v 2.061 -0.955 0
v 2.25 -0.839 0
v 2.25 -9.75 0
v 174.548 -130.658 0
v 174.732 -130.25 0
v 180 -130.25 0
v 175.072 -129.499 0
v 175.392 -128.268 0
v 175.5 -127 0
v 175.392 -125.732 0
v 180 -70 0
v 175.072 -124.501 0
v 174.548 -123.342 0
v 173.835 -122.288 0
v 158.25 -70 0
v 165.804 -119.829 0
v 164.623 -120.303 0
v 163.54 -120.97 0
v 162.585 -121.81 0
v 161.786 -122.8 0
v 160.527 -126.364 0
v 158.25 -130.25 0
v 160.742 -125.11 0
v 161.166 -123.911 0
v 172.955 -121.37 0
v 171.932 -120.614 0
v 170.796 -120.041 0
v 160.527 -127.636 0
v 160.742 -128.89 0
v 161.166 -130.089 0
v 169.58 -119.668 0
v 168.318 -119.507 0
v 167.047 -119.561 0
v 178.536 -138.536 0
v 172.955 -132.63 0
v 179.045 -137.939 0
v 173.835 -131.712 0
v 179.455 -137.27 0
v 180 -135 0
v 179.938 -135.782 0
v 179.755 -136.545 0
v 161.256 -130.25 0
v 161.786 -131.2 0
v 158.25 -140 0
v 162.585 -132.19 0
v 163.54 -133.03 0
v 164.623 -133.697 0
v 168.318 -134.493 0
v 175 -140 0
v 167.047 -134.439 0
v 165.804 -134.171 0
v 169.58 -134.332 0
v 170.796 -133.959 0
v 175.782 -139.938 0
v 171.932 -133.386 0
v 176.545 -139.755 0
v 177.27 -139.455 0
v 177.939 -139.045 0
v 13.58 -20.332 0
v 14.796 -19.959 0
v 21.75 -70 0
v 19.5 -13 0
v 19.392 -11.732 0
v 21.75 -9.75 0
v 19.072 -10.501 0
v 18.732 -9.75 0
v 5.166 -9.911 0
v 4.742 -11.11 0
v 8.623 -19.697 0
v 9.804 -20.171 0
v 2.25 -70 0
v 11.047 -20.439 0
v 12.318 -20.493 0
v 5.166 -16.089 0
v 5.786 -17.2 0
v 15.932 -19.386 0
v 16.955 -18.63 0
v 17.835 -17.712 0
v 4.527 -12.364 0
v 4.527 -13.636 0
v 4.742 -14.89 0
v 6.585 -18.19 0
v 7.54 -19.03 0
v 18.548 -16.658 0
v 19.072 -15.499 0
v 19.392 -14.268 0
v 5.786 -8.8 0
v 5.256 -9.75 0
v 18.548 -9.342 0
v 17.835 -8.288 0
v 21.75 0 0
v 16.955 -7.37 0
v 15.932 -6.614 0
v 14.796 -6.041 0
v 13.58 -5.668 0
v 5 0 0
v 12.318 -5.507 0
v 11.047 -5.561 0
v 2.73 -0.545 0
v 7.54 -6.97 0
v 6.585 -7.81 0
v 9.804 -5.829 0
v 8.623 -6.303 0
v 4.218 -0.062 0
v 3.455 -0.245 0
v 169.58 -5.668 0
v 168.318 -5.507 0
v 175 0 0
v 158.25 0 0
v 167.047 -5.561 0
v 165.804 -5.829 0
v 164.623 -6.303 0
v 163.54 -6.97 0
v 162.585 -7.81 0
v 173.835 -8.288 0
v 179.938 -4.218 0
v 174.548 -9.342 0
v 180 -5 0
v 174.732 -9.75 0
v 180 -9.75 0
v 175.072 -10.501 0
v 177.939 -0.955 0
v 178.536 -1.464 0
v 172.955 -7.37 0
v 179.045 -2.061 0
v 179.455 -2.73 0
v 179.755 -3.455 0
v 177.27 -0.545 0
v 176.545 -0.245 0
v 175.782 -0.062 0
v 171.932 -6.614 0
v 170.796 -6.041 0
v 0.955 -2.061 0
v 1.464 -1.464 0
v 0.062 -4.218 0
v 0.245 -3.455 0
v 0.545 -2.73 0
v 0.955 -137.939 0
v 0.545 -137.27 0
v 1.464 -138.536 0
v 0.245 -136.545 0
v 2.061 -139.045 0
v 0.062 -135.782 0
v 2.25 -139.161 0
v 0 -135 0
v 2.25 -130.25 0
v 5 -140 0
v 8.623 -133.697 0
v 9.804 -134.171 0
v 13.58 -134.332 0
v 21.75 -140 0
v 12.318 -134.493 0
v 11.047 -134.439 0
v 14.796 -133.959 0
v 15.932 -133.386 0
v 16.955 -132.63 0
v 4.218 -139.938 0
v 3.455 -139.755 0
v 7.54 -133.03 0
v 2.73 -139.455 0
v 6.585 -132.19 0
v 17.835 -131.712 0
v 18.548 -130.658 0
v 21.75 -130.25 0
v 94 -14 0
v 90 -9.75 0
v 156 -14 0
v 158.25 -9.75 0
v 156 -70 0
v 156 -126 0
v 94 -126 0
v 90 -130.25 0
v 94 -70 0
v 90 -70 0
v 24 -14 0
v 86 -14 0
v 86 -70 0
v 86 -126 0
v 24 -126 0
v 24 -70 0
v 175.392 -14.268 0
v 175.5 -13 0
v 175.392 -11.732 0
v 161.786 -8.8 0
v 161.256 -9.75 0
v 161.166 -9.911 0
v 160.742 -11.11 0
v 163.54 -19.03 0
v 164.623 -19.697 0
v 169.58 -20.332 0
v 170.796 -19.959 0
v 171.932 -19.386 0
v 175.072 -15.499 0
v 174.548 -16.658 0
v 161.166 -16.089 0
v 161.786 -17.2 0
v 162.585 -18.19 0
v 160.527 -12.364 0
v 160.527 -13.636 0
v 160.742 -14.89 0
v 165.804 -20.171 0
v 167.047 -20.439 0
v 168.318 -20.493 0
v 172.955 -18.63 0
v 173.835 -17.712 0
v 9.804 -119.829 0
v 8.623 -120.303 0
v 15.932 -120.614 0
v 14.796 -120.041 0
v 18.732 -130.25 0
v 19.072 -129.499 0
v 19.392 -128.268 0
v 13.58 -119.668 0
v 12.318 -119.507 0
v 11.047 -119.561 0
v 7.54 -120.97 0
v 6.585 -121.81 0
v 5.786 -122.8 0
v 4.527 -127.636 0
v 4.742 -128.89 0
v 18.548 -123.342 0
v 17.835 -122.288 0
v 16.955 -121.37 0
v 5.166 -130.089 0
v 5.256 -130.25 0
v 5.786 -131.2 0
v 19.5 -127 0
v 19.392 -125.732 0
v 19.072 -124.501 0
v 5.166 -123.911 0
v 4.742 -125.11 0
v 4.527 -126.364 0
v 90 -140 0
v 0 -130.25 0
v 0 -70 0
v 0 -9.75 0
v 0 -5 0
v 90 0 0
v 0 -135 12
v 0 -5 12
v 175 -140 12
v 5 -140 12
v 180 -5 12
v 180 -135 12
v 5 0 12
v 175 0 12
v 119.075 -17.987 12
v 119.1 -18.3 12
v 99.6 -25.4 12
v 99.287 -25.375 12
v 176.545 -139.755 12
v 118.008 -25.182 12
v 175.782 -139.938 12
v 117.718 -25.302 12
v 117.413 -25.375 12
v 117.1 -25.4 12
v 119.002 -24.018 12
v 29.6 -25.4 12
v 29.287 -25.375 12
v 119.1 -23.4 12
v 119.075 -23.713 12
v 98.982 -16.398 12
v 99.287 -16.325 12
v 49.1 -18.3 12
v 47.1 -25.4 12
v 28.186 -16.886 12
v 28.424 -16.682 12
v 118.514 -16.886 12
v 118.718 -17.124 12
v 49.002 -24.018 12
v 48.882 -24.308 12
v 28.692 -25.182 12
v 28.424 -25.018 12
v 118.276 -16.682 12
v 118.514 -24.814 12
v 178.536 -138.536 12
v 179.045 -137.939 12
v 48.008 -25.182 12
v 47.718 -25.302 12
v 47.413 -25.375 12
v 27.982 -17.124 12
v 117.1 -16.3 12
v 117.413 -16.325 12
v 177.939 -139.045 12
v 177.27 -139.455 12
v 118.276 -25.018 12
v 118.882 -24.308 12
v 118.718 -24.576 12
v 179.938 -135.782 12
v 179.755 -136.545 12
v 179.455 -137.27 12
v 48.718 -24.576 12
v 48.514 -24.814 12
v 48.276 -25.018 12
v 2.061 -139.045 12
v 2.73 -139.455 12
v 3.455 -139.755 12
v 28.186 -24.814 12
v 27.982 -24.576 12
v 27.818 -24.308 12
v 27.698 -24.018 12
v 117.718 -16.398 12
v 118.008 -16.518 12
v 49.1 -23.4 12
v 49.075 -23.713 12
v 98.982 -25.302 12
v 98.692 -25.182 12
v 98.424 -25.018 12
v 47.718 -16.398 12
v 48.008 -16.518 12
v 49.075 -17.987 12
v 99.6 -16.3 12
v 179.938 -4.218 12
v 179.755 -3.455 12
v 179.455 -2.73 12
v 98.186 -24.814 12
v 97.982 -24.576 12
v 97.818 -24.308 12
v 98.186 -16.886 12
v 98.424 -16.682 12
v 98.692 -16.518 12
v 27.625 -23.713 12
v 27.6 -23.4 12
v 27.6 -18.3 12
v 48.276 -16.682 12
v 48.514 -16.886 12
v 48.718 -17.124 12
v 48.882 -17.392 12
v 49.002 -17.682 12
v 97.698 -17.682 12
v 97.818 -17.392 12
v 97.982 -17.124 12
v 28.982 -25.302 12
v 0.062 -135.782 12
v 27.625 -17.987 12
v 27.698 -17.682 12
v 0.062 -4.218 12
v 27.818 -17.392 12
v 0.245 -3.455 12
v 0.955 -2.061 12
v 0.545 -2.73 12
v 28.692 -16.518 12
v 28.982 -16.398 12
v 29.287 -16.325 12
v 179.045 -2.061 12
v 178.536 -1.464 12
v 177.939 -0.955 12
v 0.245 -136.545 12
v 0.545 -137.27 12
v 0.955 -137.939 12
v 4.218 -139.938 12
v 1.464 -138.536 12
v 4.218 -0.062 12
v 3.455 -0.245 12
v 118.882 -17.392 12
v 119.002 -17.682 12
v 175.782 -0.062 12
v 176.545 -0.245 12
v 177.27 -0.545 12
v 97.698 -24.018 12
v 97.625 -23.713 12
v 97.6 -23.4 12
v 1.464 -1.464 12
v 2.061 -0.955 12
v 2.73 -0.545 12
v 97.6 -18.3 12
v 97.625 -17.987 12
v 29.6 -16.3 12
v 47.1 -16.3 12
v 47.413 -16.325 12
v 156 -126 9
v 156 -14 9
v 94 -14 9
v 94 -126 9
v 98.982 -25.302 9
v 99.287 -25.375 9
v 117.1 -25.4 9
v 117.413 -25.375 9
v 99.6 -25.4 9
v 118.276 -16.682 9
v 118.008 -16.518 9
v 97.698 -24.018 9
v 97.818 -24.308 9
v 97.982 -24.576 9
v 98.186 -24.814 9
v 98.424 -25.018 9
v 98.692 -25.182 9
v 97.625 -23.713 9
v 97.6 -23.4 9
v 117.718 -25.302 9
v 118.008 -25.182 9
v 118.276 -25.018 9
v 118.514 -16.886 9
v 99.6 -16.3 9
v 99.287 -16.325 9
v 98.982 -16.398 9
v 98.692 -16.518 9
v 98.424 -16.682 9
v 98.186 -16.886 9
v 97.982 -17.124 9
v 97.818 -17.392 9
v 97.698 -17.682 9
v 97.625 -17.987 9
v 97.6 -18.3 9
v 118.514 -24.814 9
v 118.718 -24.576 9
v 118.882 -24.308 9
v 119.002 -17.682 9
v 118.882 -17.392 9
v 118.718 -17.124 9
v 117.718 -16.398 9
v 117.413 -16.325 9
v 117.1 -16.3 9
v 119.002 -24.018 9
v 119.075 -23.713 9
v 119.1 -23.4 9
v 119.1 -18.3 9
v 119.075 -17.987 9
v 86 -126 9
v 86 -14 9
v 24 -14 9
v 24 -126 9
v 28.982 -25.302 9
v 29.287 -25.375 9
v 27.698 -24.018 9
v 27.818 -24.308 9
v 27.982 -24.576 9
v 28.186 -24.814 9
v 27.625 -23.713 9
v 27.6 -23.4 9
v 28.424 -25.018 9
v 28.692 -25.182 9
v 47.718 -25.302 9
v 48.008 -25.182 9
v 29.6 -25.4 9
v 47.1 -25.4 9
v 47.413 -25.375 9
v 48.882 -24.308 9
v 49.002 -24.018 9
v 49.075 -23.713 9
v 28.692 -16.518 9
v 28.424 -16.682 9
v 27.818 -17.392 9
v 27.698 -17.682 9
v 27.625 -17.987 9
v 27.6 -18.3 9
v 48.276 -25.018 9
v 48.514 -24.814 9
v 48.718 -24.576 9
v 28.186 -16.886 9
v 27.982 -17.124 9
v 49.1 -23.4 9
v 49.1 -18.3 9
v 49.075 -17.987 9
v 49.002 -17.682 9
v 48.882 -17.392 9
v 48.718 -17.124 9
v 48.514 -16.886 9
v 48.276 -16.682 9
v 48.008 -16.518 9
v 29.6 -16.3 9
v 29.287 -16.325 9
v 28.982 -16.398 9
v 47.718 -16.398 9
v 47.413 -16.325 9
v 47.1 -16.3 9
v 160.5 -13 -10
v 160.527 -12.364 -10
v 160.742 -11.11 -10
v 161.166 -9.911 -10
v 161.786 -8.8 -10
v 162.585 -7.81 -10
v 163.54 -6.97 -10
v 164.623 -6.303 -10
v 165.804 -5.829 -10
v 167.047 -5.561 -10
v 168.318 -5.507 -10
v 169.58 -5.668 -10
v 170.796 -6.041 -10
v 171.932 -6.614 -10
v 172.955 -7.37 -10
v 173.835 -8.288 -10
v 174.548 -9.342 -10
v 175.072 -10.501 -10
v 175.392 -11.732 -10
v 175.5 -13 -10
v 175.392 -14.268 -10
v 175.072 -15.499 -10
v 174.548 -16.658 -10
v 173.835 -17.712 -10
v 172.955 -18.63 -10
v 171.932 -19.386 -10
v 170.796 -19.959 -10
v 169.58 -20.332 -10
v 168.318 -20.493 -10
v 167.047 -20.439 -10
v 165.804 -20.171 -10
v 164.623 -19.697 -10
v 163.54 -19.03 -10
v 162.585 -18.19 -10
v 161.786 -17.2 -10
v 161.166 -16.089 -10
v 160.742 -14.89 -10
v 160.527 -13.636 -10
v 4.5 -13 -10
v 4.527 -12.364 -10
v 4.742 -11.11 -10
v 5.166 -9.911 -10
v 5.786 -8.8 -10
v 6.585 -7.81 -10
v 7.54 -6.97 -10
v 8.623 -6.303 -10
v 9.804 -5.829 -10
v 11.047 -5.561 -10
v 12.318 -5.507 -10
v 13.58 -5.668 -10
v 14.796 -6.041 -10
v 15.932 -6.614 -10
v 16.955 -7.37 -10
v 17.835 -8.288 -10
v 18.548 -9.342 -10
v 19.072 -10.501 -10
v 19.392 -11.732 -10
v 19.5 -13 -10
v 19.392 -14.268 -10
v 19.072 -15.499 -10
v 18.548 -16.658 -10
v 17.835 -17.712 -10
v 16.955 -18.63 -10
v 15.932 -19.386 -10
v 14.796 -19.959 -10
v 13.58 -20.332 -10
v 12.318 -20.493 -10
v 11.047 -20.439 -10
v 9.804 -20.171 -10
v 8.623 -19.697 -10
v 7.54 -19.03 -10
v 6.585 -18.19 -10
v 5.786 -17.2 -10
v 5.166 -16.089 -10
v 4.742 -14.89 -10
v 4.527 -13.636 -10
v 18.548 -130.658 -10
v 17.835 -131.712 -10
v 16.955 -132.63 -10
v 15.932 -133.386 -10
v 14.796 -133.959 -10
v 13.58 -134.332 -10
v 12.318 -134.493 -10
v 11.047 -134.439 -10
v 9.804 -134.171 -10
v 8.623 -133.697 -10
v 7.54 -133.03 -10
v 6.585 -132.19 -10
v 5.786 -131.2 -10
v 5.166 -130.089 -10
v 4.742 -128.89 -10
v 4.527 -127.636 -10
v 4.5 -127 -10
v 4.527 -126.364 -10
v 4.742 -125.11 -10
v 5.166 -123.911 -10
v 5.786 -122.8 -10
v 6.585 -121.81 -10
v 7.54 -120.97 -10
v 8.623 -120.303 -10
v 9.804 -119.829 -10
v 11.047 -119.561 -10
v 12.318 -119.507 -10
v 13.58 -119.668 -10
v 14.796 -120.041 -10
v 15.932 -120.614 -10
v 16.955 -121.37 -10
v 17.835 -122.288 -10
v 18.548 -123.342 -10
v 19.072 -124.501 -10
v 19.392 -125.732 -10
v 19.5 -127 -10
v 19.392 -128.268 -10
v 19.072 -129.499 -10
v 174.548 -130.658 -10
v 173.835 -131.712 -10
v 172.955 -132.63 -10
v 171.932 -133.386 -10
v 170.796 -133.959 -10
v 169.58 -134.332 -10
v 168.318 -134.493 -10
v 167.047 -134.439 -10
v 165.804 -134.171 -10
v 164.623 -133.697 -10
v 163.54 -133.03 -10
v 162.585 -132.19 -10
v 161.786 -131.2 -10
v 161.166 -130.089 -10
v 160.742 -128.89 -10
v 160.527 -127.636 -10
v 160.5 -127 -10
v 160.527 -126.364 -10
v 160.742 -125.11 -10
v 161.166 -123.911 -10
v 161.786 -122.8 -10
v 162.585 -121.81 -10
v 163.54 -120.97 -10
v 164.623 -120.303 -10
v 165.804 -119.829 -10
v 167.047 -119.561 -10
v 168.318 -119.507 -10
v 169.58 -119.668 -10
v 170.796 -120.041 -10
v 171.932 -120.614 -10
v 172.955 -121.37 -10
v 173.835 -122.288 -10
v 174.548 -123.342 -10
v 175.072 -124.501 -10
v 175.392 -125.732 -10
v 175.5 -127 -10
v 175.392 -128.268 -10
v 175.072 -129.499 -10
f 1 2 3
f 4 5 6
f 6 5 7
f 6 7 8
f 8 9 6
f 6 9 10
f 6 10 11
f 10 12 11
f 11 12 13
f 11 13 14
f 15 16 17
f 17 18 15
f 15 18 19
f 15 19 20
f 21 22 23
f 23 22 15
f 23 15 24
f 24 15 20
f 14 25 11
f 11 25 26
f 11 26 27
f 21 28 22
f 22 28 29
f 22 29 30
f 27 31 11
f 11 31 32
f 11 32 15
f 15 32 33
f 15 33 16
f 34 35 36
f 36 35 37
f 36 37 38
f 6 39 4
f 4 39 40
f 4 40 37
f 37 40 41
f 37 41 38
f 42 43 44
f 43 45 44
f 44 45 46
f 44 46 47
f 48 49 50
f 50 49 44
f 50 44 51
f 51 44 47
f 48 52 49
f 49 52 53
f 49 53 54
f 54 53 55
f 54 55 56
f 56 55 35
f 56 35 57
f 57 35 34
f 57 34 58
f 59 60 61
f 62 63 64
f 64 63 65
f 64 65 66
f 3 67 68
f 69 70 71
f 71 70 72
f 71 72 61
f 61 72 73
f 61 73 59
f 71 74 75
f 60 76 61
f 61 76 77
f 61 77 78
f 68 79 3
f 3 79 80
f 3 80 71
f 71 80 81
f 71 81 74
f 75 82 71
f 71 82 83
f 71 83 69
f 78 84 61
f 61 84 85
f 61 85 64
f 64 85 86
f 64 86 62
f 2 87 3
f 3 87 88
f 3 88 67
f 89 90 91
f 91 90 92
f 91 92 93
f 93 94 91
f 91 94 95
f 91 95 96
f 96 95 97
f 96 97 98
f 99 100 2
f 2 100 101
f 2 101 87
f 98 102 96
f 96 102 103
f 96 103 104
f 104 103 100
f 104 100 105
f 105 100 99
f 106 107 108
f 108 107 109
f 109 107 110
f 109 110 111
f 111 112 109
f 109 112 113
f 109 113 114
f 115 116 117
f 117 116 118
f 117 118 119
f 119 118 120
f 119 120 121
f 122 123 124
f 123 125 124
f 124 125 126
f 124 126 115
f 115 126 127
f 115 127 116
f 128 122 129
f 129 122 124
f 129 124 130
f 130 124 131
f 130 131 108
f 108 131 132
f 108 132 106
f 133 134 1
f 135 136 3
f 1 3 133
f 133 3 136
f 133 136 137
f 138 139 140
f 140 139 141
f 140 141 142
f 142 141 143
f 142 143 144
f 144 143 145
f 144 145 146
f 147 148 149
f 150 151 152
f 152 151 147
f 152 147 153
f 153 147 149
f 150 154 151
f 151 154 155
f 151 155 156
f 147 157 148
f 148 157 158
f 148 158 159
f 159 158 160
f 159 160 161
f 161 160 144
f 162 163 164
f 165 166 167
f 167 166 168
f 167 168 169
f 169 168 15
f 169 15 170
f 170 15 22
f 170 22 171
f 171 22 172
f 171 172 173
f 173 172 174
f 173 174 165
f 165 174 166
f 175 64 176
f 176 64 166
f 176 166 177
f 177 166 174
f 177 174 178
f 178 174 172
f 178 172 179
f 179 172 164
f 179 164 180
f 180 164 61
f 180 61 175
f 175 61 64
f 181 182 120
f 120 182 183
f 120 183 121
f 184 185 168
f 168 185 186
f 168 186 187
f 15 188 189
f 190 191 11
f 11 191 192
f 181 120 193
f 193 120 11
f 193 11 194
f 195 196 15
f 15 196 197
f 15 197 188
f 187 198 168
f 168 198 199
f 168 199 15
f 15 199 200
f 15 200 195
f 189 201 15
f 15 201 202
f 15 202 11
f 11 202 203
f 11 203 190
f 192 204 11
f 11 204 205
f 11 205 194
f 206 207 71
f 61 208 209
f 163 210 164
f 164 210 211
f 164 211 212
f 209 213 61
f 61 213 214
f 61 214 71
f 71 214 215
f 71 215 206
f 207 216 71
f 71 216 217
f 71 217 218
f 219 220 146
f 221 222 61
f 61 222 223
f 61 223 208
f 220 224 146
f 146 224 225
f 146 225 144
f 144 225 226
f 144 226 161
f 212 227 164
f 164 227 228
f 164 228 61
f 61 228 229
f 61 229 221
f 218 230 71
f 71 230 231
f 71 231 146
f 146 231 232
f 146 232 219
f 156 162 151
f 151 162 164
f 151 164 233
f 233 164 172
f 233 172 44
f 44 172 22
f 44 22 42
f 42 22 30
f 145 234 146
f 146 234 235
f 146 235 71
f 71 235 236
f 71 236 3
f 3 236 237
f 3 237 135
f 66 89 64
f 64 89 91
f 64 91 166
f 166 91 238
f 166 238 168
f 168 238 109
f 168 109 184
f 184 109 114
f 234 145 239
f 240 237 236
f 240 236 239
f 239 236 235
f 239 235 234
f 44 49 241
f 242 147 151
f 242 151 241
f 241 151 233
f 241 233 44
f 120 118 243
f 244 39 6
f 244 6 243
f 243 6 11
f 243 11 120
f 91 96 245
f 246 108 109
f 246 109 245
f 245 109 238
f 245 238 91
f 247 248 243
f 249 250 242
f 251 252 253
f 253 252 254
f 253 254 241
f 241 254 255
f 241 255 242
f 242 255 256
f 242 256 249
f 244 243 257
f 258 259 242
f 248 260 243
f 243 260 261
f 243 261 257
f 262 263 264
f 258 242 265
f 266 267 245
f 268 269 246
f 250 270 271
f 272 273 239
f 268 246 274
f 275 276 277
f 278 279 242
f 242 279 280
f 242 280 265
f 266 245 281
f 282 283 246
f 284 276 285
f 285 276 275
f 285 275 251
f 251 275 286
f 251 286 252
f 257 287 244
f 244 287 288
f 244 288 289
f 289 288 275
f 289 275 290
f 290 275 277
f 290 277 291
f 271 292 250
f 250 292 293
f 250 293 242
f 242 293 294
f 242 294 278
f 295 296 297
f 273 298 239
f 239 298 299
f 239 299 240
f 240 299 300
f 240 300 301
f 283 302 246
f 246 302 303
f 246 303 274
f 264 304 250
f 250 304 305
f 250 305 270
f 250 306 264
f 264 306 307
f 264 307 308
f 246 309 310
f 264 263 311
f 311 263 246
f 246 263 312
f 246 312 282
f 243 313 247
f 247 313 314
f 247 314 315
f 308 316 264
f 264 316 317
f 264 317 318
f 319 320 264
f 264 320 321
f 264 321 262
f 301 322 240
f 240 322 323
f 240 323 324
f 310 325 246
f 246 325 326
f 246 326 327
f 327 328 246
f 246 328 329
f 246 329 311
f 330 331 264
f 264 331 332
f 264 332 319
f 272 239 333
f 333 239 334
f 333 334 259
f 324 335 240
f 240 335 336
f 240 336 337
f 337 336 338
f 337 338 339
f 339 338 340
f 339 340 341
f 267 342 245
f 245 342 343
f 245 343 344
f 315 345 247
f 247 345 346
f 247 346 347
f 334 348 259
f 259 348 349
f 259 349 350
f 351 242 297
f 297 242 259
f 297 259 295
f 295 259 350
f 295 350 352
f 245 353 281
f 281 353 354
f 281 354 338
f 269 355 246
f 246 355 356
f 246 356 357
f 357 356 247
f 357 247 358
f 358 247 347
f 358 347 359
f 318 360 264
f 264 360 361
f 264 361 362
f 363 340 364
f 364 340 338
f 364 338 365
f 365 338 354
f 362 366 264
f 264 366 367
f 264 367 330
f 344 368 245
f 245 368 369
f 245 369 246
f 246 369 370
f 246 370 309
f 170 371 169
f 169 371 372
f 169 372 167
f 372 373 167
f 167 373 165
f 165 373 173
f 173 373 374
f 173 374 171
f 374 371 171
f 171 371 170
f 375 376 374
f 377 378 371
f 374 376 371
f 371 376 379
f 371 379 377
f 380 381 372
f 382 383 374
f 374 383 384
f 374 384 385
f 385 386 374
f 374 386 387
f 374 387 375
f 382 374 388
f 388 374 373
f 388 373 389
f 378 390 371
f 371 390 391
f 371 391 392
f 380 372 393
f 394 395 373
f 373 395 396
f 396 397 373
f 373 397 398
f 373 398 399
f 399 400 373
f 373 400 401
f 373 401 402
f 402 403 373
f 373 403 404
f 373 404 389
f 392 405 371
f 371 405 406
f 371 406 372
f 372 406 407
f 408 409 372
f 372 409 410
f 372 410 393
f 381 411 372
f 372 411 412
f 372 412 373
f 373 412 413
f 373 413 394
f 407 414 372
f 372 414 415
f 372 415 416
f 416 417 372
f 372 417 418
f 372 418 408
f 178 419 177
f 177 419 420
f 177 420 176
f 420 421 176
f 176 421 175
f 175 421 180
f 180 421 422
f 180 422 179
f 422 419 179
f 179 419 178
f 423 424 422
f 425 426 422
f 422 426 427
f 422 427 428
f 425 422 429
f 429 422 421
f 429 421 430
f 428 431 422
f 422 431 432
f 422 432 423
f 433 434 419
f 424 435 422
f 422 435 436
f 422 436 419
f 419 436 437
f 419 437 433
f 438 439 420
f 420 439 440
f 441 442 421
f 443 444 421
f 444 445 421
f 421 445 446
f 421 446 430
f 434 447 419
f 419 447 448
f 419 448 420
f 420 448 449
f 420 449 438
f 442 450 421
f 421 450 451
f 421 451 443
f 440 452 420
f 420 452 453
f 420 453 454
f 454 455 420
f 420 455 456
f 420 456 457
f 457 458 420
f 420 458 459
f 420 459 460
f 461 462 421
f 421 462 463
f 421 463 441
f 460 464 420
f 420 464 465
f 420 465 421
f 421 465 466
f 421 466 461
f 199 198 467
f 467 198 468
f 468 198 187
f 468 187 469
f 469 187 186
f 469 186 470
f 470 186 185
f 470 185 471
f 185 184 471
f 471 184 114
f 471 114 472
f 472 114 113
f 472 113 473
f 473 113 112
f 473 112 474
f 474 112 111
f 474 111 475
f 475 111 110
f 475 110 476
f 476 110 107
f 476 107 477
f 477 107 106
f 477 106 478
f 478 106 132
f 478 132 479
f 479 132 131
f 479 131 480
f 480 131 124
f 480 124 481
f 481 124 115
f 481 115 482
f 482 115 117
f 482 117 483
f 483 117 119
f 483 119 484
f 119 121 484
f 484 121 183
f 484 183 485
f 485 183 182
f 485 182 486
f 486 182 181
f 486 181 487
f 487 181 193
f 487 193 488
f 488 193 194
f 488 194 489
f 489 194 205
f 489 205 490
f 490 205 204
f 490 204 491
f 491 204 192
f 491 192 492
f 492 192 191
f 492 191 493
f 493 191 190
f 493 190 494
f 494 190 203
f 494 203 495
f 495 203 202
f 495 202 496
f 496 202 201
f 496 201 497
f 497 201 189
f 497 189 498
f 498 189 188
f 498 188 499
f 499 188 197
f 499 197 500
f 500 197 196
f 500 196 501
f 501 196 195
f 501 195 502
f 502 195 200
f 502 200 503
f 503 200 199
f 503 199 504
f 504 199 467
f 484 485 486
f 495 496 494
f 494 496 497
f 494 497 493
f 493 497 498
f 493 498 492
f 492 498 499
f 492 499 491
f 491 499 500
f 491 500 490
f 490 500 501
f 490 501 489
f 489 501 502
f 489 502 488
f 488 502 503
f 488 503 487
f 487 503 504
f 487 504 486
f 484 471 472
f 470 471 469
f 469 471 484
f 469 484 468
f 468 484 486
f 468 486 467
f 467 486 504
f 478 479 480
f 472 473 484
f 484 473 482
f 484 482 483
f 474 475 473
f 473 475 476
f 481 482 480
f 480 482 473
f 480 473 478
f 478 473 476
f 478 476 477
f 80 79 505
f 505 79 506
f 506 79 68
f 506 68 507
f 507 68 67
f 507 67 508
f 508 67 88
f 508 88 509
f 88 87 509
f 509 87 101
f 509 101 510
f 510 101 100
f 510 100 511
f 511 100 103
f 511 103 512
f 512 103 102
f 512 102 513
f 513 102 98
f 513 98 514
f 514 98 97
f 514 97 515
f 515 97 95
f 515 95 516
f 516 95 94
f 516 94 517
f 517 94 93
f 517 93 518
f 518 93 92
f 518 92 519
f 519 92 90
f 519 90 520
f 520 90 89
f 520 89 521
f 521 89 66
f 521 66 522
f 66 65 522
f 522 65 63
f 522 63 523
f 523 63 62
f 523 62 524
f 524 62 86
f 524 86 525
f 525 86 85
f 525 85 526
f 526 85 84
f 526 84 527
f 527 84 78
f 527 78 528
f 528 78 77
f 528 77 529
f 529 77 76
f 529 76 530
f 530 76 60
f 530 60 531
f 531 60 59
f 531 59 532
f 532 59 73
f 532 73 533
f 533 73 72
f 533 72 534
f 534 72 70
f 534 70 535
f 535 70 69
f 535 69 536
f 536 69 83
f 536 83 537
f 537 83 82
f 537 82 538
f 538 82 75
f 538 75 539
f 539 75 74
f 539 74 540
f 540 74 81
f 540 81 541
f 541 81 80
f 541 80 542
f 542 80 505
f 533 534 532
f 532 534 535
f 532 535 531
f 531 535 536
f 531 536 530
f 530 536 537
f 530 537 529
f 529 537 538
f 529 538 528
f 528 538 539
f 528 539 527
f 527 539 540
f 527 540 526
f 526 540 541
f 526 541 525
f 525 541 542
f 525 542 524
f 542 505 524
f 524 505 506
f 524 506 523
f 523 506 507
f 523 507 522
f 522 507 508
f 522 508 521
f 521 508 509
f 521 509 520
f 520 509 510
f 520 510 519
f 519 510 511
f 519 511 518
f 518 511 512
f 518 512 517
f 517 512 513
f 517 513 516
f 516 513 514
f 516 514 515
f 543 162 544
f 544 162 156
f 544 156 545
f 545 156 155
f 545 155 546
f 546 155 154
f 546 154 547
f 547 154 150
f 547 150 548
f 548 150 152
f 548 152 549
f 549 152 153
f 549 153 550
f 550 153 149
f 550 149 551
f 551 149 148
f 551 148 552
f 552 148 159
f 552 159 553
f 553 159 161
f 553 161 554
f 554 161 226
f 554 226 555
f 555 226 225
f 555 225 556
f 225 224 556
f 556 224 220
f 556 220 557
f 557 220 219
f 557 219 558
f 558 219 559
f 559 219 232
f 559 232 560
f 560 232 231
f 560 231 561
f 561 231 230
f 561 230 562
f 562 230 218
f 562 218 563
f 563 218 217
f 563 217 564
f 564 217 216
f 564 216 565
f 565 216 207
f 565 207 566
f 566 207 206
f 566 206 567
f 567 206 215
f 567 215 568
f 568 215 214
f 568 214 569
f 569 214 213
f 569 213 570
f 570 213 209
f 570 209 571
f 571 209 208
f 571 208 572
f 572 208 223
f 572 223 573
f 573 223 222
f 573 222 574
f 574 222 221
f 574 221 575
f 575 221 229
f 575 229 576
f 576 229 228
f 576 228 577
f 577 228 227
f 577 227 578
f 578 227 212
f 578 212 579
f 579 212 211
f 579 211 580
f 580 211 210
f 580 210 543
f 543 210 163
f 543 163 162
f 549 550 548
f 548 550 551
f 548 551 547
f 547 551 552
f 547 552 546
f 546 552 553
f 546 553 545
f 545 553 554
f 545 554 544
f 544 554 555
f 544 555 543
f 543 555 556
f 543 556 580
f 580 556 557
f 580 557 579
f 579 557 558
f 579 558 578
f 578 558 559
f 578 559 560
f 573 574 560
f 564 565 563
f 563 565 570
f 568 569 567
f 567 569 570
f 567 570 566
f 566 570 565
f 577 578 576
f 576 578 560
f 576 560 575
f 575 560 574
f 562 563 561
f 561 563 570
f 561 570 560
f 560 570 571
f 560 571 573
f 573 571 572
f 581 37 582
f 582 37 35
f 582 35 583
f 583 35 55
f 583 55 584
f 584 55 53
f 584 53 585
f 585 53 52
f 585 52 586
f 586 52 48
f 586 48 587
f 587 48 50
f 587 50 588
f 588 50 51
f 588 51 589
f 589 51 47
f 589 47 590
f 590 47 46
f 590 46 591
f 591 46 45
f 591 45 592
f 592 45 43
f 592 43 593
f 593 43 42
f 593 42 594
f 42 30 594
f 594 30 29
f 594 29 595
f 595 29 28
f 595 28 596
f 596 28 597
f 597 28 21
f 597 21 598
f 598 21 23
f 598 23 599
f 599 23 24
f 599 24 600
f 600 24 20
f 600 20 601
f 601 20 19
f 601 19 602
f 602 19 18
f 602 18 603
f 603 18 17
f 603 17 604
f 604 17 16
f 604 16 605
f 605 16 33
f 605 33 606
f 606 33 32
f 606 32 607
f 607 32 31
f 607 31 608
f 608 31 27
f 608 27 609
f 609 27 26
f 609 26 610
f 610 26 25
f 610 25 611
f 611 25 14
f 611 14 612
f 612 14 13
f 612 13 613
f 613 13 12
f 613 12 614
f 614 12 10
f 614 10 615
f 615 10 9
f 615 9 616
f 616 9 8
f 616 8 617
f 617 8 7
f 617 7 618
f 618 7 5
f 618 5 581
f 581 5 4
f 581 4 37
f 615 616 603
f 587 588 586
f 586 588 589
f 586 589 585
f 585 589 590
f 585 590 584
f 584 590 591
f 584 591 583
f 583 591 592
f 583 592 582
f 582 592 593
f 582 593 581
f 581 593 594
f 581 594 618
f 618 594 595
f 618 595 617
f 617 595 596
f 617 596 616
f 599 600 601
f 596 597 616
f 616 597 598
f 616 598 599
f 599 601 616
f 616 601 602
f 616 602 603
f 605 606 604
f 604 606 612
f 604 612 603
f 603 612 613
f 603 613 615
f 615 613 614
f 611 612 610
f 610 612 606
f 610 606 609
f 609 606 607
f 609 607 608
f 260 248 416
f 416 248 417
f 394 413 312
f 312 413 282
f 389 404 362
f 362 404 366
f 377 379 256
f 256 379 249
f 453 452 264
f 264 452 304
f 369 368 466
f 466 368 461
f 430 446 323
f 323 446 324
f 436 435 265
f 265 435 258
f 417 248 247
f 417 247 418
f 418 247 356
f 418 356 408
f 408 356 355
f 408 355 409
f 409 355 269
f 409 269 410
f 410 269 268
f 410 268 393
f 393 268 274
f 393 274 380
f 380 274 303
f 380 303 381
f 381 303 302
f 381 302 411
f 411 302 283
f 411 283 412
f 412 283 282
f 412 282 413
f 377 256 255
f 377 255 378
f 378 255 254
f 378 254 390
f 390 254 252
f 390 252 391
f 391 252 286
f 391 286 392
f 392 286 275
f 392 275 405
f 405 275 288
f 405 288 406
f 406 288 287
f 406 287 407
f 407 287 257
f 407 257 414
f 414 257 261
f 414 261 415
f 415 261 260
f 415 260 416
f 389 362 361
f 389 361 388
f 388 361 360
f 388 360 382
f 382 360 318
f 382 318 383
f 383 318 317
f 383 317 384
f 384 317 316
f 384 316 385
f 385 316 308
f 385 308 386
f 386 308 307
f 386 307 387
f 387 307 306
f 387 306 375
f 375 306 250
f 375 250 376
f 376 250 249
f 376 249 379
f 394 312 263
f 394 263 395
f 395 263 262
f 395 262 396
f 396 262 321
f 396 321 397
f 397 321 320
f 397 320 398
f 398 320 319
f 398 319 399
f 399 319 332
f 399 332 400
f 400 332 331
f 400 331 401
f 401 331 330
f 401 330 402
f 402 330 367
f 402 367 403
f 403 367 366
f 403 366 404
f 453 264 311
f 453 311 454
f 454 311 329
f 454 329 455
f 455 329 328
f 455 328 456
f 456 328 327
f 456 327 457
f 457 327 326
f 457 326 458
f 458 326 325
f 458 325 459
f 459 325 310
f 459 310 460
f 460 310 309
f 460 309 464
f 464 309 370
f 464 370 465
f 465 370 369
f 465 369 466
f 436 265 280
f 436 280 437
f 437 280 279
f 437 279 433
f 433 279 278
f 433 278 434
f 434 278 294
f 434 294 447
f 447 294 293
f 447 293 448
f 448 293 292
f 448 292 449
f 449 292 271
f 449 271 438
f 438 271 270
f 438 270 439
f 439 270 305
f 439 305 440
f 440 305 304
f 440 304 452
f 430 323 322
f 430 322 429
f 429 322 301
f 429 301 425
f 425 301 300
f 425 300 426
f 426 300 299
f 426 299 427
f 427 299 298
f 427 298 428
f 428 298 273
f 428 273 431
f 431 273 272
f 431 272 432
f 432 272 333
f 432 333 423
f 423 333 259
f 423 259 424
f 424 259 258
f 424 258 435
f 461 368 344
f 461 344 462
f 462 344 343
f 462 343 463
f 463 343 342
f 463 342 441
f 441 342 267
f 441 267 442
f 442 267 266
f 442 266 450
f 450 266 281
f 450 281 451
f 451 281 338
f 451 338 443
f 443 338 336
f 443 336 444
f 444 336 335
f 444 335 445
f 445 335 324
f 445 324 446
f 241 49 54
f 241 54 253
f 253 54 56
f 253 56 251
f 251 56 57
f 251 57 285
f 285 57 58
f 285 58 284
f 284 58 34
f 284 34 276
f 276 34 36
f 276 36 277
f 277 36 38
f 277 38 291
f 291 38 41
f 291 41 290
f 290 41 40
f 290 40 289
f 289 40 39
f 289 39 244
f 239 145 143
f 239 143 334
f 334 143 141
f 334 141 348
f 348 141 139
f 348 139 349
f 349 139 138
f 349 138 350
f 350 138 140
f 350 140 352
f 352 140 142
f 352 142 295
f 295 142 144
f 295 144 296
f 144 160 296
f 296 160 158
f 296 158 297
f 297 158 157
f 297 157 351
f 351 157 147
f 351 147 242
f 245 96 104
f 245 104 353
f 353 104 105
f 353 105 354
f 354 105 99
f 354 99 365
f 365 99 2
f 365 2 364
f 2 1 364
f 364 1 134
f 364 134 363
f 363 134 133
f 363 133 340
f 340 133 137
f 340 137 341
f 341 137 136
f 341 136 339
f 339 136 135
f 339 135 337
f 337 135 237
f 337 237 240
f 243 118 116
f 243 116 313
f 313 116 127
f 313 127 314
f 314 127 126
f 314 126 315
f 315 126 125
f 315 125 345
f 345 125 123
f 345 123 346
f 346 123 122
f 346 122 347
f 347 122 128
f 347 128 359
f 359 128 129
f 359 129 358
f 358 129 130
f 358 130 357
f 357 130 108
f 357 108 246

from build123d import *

# Parameters (mm, degrees)
SKETCH1_W           = 180
SKETCH1_H           = 140
BOSS_EXTRUDE1_DEPTH = 12
SKETCH2_W           = 62
SKETCH2_H           = 112
CUT_EXTRUDE1_DEPTH  = 9
SKETCH3_R           = 7.5
BOSS_EXTRUDE2_DEPTH = 10
SKETCH4_W           = 21.5
SKETCH4_H           = 9.1
CUT_EXTRUDE2_DEPTH  = 229.825260843
FILLET4_R           = 2
FILLET5_R           = 2
FILLET6_R           = 2
FILLET7_R           = 5


with BuildPart() as part:
    # Sketch1 → Boss-Extrude1 (new body)
    with BuildSketch(Plane.XY):
        with Locations((90, -70)):
            Rectangle(SKETCH1_W, SKETCH1_H)
    extrude(amount=BOSS_EXTRUDE1_DEPTH)

    # Sketch2 → Cut-Extrude1 (cut)
    with BuildSketch(Plane(origin=(0, 0, 0), x_dir=(-1, 0, 0), z_dir=(0, 0, -1))):
        with Locations((-125, -70)):
            Rectangle(SKETCH2_W, SKETCH2_H)
        with Locations((-55, -70)):
            Rectangle(SKETCH2_W, SKETCH2_H)
    extrude(amount=-CUT_EXTRUDE1_DEPTH, mode=Mode.SUBTRACT)

    # Sketch3 → Boss-Extrude2 (add)
    with BuildSketch(Plane(origin=(0, 0, 0), x_dir=(-1, 0, 0), z_dir=(0, 0, -1))):
        with Locations(Location((-168, -13, 0), (0, 0, 180))):
            Circle(SKETCH3_R)
        with Locations(Location((-12, -13, 0), (0, 0, 180))):
            Circle(SKETCH3_R)
        with Locations(Location((-12, -127, 0), (0, 0, 180))):
            Circle(SKETCH3_R)
        with Locations(Location((-168, -127, 0), (0, 0, 180))):
            Circle(SKETCH3_R)
    extrude(amount=BOSS_EXTRUDE2_DEPTH)

    # Sketch4 → Cut-Extrude2 (cut, through all)
    with BuildSketch(Plane(origin=(0, 0, 9), x_dir=(-1, 0, 0), z_dir=(0, 0, -1))):
        with Locations((-108.35, -20.85)):
            Rectangle(SKETCH4_W, SKETCH4_H)
        with Locations((-38.35, -20.85)):
            Rectangle(SKETCH4_W, SKETCH4_H)
    extrude(amount=-CUT_EXTRUDE2_DEPTH, mode=Mode.SUBTRACT)

    # Fillet4
    fillet4_edges = [part.edges().sort_by_distance(p)[0] for p in [
        (119.1, -16.3, 10.5),
    ]]
    fillet(fillet4_edges, radius=FILLET4_R)

    # Fillet5
    fillet5_edges = [part.edges().sort_by_distance(p)[0] for p in [
        (119.1, -25.4, 10.5),
        (97.6, -16.3, 10.5),
        (97.6, -25.4, 10.5),
    ]]
    fillet(fillet5_edges, radius=FILLET5_R)

    # Fillet6
    fillet6_edges = [part.edges().sort_by_distance(p)[0] for p in [
        (49.1, -25.4, 10.5),
        (49.1, -16.3, 10.5),
        (27.6, -16.3, 10.5),
        (27.6, -25.4, 10.5),
    ]]
    fillet(fillet6_edges, radius=FILLET6_R)

    # Fillet7
    fillet7_edges = [part.edges().sort_by_distance(p)[0] for p in [
        (0, 0, 6),
        (180, 0, 6),
        (180, -140, 6),
        (0, -140, 6),
    ]]
    fillet(fillet7_edges, radius=FILLET7_R)


solid = part.part
